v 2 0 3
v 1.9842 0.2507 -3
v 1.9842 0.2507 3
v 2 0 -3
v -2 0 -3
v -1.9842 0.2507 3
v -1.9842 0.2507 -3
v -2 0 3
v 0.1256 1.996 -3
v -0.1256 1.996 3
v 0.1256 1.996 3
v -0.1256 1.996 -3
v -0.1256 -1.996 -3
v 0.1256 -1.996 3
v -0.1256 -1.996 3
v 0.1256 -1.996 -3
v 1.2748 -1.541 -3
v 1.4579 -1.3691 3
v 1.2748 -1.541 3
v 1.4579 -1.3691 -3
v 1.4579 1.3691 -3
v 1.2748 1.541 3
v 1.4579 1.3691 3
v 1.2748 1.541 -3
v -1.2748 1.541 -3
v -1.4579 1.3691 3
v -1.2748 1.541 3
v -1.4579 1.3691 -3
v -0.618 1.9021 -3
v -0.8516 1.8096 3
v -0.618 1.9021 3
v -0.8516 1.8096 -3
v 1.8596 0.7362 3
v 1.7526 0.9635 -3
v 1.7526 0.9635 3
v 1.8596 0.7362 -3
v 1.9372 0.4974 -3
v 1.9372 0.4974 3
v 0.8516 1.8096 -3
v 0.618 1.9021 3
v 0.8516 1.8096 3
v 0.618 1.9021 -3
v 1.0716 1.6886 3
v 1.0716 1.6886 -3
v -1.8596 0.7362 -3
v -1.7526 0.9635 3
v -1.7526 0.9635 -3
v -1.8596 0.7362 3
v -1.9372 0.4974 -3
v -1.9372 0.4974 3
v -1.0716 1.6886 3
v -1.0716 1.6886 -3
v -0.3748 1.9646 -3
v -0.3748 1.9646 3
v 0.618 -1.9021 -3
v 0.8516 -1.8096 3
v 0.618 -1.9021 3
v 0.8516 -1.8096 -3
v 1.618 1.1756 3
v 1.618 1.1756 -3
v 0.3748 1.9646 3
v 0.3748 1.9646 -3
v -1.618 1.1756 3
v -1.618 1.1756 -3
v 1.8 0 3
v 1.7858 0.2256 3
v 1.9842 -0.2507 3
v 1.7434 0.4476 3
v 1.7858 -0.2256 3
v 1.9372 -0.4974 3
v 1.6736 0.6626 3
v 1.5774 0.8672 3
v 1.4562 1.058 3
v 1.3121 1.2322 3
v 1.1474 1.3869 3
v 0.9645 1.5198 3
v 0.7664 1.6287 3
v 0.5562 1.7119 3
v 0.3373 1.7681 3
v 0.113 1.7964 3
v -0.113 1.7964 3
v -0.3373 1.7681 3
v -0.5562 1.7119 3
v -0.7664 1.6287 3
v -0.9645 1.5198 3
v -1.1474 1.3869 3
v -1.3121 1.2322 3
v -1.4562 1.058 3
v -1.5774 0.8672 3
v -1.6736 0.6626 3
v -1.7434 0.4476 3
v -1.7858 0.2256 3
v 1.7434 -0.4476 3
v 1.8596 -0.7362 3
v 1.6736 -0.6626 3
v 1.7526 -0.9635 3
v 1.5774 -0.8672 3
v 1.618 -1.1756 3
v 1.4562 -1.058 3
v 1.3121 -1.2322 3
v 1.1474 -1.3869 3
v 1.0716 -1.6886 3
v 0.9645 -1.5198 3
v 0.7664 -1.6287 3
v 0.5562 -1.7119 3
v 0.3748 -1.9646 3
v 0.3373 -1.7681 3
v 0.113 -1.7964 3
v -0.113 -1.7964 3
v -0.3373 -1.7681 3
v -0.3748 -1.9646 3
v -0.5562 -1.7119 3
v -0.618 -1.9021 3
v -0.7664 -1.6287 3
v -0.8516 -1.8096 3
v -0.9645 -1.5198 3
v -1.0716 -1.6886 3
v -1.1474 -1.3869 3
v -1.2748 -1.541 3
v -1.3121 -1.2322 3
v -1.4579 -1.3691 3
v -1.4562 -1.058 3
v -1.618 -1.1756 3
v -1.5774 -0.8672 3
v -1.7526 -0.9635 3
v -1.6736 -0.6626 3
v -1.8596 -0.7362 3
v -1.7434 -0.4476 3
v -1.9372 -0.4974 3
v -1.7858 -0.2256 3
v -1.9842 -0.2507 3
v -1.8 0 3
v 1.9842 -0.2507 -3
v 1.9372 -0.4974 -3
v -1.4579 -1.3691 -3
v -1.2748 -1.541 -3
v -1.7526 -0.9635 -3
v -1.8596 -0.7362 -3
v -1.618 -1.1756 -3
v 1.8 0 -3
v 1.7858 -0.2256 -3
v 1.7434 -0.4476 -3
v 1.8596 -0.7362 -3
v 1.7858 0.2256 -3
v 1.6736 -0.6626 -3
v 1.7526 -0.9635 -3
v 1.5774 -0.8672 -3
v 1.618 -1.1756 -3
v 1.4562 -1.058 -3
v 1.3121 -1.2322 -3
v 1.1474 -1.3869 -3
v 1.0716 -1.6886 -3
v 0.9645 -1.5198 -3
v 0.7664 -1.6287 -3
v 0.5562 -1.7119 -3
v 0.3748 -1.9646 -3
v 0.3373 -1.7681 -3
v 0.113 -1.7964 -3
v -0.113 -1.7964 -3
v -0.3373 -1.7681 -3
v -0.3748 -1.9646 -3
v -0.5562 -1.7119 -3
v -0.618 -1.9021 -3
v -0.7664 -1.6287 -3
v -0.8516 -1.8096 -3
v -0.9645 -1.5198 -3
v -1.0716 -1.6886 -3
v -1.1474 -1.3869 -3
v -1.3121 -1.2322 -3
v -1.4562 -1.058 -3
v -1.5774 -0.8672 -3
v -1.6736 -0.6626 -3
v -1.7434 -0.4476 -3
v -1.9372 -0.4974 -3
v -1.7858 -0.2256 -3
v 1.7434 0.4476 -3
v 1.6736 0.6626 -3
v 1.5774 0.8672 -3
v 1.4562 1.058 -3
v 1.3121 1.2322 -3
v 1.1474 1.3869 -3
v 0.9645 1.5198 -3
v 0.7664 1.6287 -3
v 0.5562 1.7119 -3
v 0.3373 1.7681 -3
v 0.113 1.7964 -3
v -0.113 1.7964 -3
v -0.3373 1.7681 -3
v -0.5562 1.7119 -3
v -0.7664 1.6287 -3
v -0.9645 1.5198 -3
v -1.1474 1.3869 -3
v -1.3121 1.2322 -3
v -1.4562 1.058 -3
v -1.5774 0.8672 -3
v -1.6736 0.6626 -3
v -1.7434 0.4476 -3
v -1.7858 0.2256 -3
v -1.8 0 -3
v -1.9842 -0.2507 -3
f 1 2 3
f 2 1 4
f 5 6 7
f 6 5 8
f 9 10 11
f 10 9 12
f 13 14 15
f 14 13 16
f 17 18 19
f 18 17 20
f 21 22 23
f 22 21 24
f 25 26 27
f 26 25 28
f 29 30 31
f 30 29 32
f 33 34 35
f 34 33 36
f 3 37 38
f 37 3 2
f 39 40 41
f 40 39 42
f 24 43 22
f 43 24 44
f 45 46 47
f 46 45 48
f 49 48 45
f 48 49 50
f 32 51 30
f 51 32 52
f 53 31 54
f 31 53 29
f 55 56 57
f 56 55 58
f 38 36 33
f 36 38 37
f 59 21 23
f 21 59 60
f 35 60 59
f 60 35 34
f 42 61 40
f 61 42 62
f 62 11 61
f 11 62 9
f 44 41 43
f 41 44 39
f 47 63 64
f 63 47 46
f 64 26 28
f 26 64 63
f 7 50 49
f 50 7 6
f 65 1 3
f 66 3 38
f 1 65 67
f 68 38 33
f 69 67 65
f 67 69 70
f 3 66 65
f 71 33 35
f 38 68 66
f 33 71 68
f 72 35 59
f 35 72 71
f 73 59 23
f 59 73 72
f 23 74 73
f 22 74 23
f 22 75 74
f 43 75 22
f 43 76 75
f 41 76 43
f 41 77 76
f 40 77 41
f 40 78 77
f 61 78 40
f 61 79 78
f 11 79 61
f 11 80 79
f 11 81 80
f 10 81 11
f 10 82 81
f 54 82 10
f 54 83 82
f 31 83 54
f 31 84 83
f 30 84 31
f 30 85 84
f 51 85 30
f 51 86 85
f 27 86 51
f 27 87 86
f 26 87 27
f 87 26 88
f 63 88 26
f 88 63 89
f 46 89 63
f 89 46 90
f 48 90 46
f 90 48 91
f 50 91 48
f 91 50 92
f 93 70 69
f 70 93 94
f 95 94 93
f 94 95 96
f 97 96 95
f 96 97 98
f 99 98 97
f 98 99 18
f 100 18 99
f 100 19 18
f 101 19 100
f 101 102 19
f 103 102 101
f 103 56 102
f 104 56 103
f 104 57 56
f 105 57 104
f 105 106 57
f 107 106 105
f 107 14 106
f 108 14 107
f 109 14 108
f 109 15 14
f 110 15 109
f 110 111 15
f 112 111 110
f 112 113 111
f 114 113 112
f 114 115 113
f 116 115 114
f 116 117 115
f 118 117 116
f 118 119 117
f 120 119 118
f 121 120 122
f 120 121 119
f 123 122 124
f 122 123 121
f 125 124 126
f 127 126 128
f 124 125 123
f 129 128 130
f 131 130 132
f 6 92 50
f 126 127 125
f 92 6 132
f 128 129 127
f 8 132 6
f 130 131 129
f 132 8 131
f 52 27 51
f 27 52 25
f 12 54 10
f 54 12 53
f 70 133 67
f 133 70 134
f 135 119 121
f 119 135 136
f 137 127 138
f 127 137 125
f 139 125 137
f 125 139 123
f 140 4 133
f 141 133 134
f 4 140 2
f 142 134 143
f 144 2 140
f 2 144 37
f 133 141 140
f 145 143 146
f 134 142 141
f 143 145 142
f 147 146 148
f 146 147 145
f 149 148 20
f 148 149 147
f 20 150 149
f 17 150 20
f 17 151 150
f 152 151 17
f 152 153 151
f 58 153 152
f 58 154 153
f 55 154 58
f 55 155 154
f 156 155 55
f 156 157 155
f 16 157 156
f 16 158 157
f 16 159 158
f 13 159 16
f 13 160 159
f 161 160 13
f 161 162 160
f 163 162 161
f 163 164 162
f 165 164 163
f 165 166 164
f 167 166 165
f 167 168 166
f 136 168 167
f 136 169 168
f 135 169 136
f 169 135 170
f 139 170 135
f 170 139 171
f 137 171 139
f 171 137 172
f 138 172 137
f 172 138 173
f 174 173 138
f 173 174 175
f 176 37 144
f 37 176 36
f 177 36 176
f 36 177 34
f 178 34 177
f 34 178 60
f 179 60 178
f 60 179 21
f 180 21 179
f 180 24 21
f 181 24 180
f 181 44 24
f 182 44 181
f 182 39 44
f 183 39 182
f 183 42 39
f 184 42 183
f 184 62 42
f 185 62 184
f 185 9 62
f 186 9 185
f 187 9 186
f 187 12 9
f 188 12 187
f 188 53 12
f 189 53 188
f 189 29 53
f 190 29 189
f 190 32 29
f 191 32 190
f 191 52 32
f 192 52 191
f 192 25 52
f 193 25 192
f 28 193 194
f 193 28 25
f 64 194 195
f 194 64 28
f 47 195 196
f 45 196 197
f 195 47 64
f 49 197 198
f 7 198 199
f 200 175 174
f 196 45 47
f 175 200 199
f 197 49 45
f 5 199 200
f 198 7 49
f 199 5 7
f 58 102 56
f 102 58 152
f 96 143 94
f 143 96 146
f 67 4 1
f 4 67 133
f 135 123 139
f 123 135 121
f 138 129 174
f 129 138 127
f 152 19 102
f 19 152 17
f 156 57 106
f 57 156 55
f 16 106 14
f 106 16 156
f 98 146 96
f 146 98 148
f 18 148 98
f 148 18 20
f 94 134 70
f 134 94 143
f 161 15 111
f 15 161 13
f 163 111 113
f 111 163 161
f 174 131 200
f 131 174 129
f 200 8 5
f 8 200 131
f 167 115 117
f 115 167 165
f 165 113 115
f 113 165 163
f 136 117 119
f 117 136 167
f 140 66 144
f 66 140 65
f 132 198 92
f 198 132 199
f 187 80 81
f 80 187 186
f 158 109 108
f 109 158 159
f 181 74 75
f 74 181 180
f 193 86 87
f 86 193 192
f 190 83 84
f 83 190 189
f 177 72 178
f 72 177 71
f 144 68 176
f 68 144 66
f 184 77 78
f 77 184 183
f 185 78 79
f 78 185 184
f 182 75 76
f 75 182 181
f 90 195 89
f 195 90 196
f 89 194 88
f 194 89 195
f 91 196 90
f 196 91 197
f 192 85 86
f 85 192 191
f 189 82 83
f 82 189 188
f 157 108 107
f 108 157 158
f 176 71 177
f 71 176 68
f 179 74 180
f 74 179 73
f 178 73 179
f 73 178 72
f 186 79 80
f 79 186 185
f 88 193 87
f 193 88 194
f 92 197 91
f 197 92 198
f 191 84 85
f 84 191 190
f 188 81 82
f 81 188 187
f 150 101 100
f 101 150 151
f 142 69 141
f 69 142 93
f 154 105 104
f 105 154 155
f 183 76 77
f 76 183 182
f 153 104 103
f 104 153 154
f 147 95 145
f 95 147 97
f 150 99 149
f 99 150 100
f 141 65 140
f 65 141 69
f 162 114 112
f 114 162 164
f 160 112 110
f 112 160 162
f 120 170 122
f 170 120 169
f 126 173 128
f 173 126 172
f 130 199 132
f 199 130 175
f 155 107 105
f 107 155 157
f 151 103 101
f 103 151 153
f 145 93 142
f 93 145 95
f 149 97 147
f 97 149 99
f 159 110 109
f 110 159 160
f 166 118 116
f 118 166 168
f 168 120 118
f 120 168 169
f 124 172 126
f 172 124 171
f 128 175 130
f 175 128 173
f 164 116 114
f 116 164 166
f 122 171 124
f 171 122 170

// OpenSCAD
$fn = 50;


difference() {
	union() {
		translate(v = [0, 0, -3.0000000000]) {
			cylinder(h = 6, r = 2.0000000000);
		}
	}
	union() {
		translate(v = [0, 0, -100.0000000000]) {
			cylinder(h = 200, r = 1.8000000000);
		}
	}
}
